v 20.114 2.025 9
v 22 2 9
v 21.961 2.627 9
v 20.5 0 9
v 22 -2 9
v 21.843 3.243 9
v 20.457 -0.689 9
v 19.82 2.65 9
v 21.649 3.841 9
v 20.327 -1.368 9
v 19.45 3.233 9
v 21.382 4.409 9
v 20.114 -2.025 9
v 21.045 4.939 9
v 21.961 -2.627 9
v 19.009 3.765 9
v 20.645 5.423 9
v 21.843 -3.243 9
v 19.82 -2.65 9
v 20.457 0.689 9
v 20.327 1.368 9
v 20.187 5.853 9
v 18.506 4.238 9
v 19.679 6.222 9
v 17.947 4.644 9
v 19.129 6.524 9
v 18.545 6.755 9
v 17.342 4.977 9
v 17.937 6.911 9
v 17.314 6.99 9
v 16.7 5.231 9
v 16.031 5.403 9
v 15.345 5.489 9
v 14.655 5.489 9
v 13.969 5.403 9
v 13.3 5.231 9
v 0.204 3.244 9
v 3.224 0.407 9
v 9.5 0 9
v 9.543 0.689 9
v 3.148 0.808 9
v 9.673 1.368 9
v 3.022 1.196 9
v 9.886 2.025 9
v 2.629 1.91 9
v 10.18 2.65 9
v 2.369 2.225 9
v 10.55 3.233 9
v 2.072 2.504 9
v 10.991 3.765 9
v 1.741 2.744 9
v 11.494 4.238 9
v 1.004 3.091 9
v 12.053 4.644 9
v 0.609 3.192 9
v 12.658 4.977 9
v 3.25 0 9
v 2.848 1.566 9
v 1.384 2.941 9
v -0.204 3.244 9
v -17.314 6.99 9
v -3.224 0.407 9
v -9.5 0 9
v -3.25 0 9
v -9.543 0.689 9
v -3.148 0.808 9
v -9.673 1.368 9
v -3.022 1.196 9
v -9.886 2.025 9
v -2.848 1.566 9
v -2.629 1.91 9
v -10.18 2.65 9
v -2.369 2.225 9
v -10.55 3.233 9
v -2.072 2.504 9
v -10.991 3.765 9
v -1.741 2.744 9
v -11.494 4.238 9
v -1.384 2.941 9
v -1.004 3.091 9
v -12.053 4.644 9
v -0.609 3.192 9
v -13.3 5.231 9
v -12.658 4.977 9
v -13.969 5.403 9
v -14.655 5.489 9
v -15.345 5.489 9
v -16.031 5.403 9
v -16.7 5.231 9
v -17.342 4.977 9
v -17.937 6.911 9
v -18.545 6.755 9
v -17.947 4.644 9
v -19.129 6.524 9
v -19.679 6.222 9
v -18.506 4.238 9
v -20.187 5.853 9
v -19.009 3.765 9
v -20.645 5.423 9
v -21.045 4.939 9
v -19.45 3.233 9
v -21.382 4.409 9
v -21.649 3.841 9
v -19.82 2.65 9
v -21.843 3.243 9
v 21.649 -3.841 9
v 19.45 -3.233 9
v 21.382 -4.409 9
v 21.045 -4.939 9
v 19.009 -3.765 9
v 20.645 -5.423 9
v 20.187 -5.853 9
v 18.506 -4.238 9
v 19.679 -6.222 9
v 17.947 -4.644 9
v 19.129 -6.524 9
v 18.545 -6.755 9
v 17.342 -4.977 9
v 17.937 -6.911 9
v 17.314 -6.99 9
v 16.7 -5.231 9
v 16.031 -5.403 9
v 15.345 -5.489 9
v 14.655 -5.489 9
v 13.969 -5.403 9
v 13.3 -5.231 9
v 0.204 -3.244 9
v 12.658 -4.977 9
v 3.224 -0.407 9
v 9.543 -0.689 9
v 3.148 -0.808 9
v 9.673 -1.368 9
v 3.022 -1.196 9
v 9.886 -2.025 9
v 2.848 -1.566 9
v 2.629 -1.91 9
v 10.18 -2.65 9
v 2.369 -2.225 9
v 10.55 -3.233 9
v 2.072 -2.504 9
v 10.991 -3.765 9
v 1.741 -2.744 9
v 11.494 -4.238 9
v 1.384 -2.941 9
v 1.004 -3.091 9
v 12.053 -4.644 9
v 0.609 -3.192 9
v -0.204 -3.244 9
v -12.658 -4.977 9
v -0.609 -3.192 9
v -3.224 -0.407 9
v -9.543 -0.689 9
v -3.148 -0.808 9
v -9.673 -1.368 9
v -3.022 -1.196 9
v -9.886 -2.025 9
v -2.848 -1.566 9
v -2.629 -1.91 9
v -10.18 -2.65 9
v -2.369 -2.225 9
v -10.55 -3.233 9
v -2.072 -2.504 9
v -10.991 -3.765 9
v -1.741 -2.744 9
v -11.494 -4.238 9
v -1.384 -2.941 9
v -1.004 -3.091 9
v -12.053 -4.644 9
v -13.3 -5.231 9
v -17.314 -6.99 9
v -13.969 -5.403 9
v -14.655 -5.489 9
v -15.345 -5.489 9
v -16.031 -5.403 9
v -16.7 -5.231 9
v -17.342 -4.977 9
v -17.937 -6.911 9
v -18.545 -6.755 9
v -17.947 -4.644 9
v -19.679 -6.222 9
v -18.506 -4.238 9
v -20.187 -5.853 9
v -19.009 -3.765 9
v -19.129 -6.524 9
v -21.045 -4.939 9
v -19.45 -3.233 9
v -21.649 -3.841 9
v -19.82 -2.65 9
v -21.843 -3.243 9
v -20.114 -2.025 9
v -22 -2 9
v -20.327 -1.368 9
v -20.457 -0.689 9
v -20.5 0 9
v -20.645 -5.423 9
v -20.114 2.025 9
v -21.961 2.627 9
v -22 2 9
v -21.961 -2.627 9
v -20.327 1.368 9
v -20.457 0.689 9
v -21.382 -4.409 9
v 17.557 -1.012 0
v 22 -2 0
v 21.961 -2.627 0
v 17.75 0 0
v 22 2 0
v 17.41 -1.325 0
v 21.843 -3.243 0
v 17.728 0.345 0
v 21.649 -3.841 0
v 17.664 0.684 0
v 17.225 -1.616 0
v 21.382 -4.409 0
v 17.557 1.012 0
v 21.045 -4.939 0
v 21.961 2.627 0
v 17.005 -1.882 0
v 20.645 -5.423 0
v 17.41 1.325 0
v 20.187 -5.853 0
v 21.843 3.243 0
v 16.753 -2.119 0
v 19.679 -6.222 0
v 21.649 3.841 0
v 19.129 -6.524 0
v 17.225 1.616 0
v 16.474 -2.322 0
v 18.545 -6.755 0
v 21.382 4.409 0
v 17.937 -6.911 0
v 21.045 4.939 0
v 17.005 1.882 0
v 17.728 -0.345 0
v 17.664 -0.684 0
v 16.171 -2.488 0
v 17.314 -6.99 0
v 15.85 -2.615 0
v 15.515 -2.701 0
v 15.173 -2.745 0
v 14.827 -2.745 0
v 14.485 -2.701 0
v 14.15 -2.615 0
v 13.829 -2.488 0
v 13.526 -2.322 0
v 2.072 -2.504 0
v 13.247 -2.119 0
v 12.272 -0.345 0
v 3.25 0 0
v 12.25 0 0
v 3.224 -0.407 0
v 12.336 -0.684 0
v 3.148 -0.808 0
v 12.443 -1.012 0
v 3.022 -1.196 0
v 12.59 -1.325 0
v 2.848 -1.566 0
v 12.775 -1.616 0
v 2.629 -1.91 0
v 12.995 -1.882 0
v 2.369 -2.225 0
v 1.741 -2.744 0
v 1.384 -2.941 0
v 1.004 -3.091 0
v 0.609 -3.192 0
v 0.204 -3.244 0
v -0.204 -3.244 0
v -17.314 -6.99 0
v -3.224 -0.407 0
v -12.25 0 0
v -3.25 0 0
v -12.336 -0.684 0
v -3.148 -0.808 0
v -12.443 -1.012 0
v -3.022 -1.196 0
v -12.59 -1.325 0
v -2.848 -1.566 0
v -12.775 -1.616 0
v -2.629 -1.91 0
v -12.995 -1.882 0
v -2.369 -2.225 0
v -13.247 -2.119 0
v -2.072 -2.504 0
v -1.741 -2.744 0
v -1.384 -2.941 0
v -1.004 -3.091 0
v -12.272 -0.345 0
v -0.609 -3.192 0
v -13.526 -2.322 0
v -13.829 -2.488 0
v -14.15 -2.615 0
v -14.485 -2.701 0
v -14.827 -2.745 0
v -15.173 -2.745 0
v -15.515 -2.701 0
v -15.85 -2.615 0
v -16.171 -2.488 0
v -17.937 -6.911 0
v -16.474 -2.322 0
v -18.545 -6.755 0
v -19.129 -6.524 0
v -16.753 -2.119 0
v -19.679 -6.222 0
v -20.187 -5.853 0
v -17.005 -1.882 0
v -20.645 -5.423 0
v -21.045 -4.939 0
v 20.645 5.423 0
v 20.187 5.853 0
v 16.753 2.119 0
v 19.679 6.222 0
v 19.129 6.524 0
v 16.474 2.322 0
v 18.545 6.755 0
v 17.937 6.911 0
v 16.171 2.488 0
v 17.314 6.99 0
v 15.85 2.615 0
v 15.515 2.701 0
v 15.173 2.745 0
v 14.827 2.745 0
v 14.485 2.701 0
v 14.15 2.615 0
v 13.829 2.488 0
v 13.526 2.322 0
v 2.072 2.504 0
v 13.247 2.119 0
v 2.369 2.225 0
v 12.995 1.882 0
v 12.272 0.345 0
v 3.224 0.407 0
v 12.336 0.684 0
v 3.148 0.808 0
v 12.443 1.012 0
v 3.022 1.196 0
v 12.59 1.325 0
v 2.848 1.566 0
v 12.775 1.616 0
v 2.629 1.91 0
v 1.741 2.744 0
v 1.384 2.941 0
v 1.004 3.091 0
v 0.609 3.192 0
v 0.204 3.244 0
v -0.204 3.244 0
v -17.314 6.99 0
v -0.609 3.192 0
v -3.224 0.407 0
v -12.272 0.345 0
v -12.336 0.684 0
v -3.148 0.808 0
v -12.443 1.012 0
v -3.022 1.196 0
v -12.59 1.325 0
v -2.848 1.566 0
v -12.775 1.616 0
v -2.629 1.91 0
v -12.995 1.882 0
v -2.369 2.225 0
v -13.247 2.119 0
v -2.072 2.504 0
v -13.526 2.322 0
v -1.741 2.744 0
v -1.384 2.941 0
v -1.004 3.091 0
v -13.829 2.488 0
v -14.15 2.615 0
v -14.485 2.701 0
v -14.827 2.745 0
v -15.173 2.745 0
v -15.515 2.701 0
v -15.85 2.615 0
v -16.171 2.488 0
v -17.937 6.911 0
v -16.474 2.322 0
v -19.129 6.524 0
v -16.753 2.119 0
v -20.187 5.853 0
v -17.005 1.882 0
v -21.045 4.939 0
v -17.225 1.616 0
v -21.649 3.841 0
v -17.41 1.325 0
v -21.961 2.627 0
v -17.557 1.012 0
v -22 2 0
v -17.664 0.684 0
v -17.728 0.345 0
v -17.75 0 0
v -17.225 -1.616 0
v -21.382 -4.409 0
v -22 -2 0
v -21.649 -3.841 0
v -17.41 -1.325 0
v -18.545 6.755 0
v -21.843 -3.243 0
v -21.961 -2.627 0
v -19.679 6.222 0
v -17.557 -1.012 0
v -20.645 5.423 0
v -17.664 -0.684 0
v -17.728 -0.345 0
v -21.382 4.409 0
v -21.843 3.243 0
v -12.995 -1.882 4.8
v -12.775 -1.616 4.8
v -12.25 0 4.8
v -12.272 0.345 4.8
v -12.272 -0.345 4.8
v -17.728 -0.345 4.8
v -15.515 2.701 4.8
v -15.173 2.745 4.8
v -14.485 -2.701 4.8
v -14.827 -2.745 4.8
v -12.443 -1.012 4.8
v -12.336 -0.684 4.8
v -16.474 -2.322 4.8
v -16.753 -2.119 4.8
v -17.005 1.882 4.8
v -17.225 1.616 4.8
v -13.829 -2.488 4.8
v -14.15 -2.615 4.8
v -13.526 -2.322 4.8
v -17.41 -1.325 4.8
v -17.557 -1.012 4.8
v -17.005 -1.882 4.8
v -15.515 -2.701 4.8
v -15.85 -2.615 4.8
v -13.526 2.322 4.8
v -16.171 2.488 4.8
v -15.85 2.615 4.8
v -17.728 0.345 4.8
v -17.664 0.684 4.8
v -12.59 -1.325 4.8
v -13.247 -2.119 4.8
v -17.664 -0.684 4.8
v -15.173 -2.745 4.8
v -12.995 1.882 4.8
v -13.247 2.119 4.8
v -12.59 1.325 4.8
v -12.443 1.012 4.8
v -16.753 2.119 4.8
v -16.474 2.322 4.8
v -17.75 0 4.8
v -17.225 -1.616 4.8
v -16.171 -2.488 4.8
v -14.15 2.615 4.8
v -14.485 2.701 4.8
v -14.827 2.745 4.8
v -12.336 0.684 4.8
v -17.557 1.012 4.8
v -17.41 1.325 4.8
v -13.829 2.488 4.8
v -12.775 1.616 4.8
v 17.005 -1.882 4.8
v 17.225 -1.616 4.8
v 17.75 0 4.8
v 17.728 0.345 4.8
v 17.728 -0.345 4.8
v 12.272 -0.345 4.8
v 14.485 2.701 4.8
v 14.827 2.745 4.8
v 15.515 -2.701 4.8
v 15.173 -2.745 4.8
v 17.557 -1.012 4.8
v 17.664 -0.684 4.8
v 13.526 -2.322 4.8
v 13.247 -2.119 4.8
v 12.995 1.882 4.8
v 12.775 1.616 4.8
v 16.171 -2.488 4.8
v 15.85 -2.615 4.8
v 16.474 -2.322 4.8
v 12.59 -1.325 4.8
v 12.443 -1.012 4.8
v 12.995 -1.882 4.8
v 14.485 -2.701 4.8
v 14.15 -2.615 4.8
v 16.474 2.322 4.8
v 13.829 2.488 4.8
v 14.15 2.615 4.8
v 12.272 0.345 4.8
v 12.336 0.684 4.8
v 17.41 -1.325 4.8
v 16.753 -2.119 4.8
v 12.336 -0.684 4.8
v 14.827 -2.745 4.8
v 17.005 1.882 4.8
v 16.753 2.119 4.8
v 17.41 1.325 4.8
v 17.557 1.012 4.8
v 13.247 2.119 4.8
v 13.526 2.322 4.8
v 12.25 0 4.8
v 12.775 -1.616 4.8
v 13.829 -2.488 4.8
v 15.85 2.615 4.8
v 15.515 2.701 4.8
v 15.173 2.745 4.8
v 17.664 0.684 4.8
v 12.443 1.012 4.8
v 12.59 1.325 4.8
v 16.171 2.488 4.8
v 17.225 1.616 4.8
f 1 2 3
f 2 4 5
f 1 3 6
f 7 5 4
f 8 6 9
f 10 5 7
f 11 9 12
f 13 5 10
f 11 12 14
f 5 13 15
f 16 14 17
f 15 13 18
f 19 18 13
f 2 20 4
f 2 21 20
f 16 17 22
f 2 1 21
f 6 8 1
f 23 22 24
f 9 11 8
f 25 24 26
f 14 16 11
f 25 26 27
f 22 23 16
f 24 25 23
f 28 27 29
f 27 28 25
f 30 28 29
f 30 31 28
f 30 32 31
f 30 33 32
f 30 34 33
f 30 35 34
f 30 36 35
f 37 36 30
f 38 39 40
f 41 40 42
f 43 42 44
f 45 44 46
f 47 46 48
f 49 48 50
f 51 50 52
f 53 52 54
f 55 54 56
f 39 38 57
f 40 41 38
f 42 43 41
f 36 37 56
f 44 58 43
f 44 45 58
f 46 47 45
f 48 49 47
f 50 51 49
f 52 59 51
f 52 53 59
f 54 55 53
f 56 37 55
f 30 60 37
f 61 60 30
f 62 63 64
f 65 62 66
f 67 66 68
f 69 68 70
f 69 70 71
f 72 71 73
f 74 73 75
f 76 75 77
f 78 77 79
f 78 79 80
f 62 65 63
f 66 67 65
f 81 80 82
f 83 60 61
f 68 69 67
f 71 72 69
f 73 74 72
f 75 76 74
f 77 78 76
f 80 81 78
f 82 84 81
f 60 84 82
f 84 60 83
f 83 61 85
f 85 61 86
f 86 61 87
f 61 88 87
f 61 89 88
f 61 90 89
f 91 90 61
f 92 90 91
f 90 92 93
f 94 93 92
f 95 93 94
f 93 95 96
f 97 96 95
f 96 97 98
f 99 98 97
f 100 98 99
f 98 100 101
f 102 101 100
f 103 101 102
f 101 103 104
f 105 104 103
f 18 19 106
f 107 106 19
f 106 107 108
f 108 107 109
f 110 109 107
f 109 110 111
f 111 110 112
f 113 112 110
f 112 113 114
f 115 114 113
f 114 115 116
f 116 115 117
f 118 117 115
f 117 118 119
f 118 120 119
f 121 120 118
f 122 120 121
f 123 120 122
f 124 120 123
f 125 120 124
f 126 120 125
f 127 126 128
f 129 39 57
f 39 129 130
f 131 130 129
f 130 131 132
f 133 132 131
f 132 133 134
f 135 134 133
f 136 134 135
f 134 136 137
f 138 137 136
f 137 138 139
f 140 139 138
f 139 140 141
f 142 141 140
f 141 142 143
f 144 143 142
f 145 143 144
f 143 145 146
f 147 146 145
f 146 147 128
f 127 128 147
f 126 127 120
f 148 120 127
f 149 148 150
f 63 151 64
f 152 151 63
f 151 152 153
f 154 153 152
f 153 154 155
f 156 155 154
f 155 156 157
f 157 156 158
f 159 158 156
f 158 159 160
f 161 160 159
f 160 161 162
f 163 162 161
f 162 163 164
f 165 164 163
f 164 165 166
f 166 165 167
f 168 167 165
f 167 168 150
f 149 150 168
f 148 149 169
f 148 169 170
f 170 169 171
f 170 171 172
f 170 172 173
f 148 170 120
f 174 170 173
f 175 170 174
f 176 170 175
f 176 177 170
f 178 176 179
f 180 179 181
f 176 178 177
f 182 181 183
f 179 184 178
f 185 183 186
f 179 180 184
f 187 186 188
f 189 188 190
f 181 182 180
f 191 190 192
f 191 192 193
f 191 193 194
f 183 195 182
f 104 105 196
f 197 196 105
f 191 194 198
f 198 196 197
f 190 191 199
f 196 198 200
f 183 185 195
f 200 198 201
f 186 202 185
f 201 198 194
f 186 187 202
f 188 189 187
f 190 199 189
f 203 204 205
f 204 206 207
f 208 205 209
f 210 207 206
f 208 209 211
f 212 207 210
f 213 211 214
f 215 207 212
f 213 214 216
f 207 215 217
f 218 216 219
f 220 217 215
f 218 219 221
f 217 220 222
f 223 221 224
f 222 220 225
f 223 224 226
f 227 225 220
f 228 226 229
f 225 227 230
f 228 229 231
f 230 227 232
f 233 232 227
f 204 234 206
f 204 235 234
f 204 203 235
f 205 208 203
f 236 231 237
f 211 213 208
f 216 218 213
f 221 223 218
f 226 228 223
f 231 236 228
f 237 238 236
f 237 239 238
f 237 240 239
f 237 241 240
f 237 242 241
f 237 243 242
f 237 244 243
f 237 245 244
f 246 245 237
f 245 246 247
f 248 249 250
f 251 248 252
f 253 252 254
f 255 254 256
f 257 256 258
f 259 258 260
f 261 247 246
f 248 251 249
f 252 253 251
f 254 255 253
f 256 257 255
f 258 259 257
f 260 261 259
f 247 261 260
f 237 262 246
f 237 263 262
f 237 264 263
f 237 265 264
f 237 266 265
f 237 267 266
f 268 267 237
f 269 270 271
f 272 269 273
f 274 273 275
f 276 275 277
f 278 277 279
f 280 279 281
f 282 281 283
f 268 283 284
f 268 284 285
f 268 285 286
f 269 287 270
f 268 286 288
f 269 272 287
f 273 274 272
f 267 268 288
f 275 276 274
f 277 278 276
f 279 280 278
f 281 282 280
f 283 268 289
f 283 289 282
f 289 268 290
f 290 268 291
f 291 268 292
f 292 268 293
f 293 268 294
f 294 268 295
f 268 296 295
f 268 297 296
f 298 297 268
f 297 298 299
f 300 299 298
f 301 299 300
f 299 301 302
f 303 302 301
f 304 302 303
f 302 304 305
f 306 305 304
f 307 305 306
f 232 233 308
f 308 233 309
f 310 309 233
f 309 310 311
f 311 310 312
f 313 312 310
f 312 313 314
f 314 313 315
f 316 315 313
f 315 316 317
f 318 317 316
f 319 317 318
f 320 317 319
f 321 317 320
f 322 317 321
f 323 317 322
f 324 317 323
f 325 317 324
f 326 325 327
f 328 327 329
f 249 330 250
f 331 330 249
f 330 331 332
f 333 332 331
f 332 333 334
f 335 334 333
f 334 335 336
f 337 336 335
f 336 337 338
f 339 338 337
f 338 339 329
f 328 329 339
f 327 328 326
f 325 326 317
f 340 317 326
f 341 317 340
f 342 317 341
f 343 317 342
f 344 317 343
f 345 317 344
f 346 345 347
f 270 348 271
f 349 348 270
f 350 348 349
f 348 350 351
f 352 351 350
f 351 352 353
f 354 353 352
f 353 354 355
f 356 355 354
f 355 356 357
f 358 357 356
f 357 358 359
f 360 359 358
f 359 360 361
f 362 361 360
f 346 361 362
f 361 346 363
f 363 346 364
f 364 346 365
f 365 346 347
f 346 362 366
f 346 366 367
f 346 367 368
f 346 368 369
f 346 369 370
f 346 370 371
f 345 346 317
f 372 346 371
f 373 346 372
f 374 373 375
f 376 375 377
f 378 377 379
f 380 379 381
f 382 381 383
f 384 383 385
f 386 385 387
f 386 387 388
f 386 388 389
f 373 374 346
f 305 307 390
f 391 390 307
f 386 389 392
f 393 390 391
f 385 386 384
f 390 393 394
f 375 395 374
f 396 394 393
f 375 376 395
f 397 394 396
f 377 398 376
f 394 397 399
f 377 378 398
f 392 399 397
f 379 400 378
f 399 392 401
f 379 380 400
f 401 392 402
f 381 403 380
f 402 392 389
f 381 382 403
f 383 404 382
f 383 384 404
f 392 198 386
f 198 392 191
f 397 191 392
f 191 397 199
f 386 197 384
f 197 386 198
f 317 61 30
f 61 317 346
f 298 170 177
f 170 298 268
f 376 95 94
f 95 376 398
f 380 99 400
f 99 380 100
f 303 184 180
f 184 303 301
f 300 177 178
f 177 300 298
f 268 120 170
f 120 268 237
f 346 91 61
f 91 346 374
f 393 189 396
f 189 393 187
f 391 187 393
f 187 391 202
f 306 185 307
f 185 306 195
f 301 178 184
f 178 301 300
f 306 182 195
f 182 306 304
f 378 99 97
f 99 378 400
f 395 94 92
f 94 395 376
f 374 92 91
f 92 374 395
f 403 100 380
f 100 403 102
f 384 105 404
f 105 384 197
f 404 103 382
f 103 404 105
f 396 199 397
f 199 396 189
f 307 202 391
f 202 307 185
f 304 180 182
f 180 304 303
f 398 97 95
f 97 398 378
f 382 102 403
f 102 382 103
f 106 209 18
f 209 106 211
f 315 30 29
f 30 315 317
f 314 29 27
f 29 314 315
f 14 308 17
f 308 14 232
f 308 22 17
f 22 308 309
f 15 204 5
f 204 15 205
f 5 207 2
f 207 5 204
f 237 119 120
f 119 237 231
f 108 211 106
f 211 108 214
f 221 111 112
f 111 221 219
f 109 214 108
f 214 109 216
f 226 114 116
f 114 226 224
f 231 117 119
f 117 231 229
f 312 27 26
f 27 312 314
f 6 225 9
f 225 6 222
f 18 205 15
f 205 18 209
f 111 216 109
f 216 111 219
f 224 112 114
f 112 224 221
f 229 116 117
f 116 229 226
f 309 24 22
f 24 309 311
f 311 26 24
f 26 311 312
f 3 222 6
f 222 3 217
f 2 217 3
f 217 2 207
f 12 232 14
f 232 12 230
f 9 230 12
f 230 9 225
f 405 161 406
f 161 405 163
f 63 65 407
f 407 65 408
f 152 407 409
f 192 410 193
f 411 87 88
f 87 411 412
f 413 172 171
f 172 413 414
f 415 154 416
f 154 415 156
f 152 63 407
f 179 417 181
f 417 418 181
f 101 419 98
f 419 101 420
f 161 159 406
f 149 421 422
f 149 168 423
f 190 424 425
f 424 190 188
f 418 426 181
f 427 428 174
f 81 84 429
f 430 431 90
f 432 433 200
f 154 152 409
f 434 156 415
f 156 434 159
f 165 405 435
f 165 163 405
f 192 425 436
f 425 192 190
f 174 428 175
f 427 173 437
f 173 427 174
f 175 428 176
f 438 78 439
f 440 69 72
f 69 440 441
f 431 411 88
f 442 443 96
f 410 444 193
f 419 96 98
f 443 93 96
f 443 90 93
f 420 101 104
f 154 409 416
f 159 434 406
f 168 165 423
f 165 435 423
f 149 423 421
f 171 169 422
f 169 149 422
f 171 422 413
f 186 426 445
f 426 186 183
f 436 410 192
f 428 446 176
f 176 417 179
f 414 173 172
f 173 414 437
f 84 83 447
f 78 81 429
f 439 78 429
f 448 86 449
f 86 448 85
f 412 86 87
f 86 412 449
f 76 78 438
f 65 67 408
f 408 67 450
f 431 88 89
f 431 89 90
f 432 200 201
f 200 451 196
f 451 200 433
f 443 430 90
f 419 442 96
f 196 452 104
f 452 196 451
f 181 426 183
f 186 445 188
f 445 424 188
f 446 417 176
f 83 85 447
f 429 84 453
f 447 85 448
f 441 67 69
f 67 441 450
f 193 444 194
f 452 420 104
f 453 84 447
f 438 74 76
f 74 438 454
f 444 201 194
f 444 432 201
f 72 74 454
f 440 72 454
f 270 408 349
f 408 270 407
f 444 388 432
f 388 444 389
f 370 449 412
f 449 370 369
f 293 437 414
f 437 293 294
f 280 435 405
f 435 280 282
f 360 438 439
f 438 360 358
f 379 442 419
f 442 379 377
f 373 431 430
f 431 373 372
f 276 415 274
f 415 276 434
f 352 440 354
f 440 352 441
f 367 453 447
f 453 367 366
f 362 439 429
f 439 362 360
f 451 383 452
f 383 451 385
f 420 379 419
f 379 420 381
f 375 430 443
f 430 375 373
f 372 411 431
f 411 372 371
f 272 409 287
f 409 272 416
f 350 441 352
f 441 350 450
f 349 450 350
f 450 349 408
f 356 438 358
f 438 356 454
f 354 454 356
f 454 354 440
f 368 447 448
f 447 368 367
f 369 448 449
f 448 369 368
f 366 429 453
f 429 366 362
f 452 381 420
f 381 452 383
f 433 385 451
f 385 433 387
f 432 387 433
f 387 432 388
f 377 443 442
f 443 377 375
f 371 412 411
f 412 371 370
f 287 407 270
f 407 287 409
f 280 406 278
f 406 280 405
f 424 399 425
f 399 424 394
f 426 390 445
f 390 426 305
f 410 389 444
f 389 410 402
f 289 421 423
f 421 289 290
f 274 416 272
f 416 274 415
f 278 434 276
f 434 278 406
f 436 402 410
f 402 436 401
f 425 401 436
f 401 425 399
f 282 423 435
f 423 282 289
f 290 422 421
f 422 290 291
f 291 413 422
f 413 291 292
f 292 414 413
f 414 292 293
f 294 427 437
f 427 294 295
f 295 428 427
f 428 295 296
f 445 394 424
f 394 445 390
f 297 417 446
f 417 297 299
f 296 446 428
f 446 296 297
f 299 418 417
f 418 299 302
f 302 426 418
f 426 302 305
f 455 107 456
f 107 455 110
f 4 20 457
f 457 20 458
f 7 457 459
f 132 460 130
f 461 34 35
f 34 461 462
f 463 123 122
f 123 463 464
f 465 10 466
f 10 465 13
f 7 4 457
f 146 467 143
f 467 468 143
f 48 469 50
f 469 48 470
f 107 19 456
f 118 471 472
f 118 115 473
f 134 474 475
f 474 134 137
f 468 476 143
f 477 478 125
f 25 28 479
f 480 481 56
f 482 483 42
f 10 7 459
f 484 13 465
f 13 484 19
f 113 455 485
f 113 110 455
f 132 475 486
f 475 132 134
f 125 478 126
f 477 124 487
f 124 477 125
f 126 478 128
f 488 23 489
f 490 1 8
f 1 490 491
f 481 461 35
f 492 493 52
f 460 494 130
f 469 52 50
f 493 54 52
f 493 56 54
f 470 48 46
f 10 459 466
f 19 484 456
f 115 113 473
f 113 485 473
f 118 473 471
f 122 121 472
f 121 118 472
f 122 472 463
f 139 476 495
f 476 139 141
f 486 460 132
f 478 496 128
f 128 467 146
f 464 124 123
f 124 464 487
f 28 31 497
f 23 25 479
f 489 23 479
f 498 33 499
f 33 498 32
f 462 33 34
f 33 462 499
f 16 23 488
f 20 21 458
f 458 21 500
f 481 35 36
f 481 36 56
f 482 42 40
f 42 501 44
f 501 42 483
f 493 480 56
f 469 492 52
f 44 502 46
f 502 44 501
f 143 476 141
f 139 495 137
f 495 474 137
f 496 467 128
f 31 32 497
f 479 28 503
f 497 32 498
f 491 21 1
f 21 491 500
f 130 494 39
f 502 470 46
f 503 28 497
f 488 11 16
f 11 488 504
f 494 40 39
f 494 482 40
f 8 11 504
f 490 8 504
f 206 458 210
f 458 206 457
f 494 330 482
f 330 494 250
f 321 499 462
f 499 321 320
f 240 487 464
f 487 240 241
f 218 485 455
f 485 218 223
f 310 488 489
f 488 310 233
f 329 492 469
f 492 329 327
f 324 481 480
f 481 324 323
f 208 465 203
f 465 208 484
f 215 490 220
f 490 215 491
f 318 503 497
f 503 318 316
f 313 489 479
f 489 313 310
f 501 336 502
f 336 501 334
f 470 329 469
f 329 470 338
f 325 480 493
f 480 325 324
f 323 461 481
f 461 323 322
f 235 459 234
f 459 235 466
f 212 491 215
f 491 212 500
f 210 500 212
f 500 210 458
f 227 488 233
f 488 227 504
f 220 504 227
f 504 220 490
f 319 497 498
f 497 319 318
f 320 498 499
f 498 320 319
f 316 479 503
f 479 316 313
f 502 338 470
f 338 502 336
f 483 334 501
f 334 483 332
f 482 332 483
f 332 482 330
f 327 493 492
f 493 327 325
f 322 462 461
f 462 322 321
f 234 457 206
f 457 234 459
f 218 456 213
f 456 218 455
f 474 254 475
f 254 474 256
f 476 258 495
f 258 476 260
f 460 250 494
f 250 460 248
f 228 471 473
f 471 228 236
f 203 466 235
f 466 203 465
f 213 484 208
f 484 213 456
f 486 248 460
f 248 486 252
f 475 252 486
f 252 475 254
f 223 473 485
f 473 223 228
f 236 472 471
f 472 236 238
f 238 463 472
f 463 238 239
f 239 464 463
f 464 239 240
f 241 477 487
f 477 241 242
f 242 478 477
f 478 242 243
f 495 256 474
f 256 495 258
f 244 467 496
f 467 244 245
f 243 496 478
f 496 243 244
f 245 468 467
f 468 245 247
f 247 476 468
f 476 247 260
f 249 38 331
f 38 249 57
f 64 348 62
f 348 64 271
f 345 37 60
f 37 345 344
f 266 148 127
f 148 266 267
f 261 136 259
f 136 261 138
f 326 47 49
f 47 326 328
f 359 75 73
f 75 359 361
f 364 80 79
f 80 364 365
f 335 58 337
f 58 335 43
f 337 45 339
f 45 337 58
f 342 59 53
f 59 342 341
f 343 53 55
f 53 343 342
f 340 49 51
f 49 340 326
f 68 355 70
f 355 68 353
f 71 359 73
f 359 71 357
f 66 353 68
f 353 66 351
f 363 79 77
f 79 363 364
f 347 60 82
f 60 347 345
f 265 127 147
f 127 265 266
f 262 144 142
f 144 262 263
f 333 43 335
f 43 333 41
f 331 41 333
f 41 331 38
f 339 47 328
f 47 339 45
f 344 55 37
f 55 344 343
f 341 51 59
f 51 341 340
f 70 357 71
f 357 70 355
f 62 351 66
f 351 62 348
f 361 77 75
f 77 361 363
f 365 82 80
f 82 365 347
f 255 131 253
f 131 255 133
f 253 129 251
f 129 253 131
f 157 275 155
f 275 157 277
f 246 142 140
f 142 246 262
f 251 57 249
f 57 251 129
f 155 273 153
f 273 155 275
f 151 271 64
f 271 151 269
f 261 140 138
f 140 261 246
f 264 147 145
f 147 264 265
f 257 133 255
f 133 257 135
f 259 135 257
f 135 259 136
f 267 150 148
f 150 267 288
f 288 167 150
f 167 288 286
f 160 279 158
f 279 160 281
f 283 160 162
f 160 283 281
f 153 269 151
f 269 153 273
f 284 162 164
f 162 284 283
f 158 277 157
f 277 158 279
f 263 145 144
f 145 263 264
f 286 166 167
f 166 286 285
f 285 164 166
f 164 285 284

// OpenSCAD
$fn = 50;


difference() {
	union() {
		cylinder(h = 9, r = 7.0000000000);
		translate(v = [-7.5000000000, 0.0000000000, 0]) {
			hull() {
				translate(v = [-9.5000000000, 2.0000000000, 0]) {
					cylinder(h = 9, r = 5);
				}
				translate(v = [9.5000000000, 2.0000000000, 0]) {
					cylinder(h = 9, r = 5);
				}
				translate(v = [-9.5000000000, -2.0000000000, 0]) {
					cylinder(h = 9, r = 5);
				}
				translate(v = [9.5000000000, -2.0000000000, 0]) {
					cylinder(h = 9, r = 5);
				}
			}
		}
		translate(v = [-7.5000000000, 0.0000000000, 0]) {
			hull() {
				translate(v = [-9.5000000000, 2.0000000000, 0]) {
					cylinder(h = 9, r = 5);
				}
				translate(v = [9.5000000000, 2.0000000000, 0]) {
					cylinder(h = 9, r = 5);
				}
				translate(v = [-9.5000000000, -2.0000000000, 0]) {
					cylinder(h = 9, r = 5);
				}
				translate(v = [9.5000000000, -2.0000000000, 0]) {
					cylinder(h = 9, r = 5);
				}
			}
		}
		translate(v = [7.5000000000, 0.0000000000, 0]) {
			hull() {
				translate(v = [-9.5000000000, 2.0000000000, 0]) {
					cylinder(h = 9, r = 5);
				}
				translate(v = [9.5000000000, 2.0000000000, 0]) {
					cylinder(h = 9, r = 5);
				}
				translate(v = [-9.5000000000, -2.0000000000, 0]) {
					cylinder(h = 9, r = 5);
				}
				translate(v = [9.5000000000, -2.0000000000, 0]) {
					cylinder(h = 9, r = 5);
				}
			}
		}
		translate(v = [7.5000000000, 0.0000000000, 0]) {
			hull() {
				translate(v = [-9.5000000000, 2.0000000000, 0]) {
					cylinder(h = 9, r = 5);
				}
				translate(v = [9.5000000000, 2.0000000000, 0]) {
					cylinder(h = 9, r = 5);
				}
				translate(v = [-9.5000000000, -2.0000000000, 0]) {
					cylinder(h = 9, r = 5);
				}
				translate(v = [9.5000000000, -2.0000000000, 0]) {
					cylinder(h = 9, r = 5);
				}
			}
		}
	}
	union() {
		translate(v = [-15.0000000000, 0.0000000000, 9]) {
			rotate(a = [0, 0, 0]) {
				difference() {
					union() {
						#translate(v = [0, 0, -9.0000000000]) {
							cylinder(h = 9, r = 2.2500000000);
						}
						#translate(v = [0, 0, -4.2000000000]) {
							cylinder(h = 4.2000000000, r1 = 2.7500000000, r2 = 5.5000000000);
						}
						#translate(v = [0, 0, -9.0000000000]) {
							cylinder(h = 9, r = 2.7500000000);
						}
						#translate(v = [0, 0, -9.0000000000]) {
							cylinder(h = 9, r = 2.2500000000);
						}
					}
					union();
				}
			}
		}
		translate(v = [-15.0000000000, 0.0000000000, 9]) {
			rotate(a = [0, 0, 0]) {
				difference() {
					union() {
						#translate(v = [0, 0, -9.0000000000]) {
							cylinder(h = 9, r = 2.2500000000);
						}
						#translate(v = [0, 0, -4.2000000000]) {
							cylinder(h = 4.2000000000, r1 = 2.7500000000, r2 = 5.5000000000);
						}
						#translate(v = [0, 0, -9.0000000000]) {
							cylinder(h = 9, r = 2.7500000000);
						}
						#translate(v = [0, 0, -9.0000000000]) {
							cylinder(h = 9, r = 2.2500000000);
						}
					}
					union();
				}
			}
		}
		translate(v = [15.0000000000, 0.0000000000, 9]) {
			rotate(a = [0, 0, 0]) {
				difference() {
					union() {
						#translate(v = [0, 0, -9.0000000000]) {
							cylinder(h = 9, r = 2.2500000000);
						}
						#translate(v = [0, 0, -4.2000000000]) {
							cylinder(h = 4.2000000000, r1 = 2.7500000000, r2 = 5.5000000000);
						}
						#translate(v = [0, 0, -9.0000000000]) {
							cylinder(h = 9, r = 2.7500000000);
						}
						#translate(v = [0, 0, -9.0000000000]) {
							cylinder(h = 9, r = 2.2500000000);
						}
					}
					union();
				}
			}
		}
		translate(v = [15.0000000000, 0.0000000000, 9]) {
			rotate(a = [0, 0, 0]) {
				difference() {
					union() {
						#translate(v = [0, 0, -9.0000000000]) {
							cylinder(h = 9, r = 2.2500000000);
						}
						#translate(v = [0, 0, -4.2000000000]) {
							cylinder(h = 4.2000000000, r1 = 2.7500000000, r2 = 5.5000000000);
						}
						#translate(v = [0, 0, -9.0000000000]) {
							cylinder(h = 9, r = 2.7500000000);
						}
						#translate(v = [0, 0, -9.0000000000]) {
							cylinder(h = 9, r = 2.2500000000);
						}
					}
					union();
				}
			}
		}
		translate(v = [0, 0, -100]) {
			cylinder(h = 200, r = 3.2500000000);
		}
		translate(v = [0, 0, -100]) {
			cylinder(h = 200, r = 1.8000000000);
		}
	}
}
